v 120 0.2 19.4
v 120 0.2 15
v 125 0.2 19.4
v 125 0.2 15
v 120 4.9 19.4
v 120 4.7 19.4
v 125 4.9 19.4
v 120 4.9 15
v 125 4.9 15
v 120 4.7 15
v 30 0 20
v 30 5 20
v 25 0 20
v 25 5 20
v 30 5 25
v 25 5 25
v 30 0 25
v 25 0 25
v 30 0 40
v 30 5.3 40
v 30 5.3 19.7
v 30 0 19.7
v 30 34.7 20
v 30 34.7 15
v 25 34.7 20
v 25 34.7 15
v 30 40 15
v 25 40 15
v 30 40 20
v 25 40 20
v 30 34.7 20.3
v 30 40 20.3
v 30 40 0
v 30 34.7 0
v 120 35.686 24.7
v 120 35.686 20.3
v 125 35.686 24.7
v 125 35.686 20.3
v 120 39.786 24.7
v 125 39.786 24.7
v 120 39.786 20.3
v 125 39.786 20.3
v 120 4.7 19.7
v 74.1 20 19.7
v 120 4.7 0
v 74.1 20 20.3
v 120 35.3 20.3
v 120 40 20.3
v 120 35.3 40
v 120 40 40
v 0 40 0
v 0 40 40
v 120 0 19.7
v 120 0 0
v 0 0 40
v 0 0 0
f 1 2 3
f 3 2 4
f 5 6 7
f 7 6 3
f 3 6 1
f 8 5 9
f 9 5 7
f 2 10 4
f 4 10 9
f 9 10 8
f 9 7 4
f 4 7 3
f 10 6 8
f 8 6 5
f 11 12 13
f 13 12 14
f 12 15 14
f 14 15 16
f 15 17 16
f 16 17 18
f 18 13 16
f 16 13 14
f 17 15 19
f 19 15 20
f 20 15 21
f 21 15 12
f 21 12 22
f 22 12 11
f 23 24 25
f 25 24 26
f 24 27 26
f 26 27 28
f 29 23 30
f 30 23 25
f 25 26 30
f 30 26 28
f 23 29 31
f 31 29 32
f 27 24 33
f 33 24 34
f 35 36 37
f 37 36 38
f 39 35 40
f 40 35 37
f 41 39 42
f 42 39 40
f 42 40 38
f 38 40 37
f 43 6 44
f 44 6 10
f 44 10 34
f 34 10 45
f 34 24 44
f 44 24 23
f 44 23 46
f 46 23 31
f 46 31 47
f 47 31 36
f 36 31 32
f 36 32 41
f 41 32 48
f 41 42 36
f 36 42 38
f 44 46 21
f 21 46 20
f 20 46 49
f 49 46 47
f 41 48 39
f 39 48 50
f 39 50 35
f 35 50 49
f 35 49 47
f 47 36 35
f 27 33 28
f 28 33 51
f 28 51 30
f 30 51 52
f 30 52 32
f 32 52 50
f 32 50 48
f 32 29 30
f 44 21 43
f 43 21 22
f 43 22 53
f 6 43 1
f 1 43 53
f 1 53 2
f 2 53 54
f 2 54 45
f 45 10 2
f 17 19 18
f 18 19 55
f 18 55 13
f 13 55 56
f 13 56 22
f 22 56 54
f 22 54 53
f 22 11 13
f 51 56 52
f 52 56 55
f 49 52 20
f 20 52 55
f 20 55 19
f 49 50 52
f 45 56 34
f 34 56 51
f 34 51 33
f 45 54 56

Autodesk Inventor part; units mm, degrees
ref_plane "YZ Plane" through (0, 0, 0) normal (1, 0, 0) x (0, 1, 0)
ref_plane "XZ Plane" through (0, 0, 0) normal (0, 1, 0) x (-1, 0, 0)
ref_plane "XY Plane" through (0, 0, 0) normal (0, 0, 1) x (1, 0, 0)
sketch "Boceto1" plane through (0, 0, 0) normal (0, 0, 1) x (1, 0, 0)
  line L0 (0, 0) -> (120, 0)
  line L1 (0, 0) -> (0, 40)
  line L2 (0, 40) -> (120, 40)
  line L3 (120, 40) -> (120, 0)
  dimension "d0" = 120
  dimension "d1" = 40
extrude "Extrusión1" add sketch "Boceto1" along normal blind 40
sketch "Boceto2" plane through (0, 0, 40) normal (0, 0, 1) x (1, 0, 0)
  line L0 (0, 0) -> (120, 0) construction
  line L1 (0, 0) -> (30, 0) construction
  line L2 (30, 0) -> (120, 0) construction
  line L3 (120, 0) -> (120, 35.3) construction
  line L4 (120, 0) -> (120, 40) construction
  line L5 (30, 0) -> (120, 0)
  line L6 (120, 35.3) -> (120, 0)
  line L7 (30, 0) -> (30, 5.3)
  line L8 (30, 5.3) -> (120, 35.3)
  line L9 (30, 0) -> (30, 0.3)
  line L10 (30, 0.3) -> (120, 0.3)
  line L11 (30, 0.3) -> (120, 0.3) construction
  dimension "d4" = 30
  dimension "d5" = 35.3
  dimension "d6" = 5.3
  dimension "d46" = 0.3
  dimension "d47" = 90
  dimension "d48" = 0
extrude "Extrusión2" cut sketch "Boceto2" against normal blind 20.3
sketch "Boceto3" plane through (0, 0, 0) normal (0, 0, -1) x (-1, 0, 0)
  line L0 (0, 0) -> (-120, 0) construction
  line L1 (0, 40) -> (0, 0) construction
  line L2 (0, 0) -> (0, 40) construction
  line L3 (0, 0) -> (40, 0) construction
  line L4 (0, 40) -> (-30, 40) construction
  line L5 (-120, 40) -> (0, 40) construction
  line L6 (-30, 40) -> (-30, 34.7)
  line L7 (0, 0) -> (-30, 0) construction
  line L8 (-120, 0) -> (-120, 40) projected
  line L9 (-30, 0) -> (-120, 0)
  line L10 (-120, 0) -> (-120, 4.7)
  line L11 (-120, 0) -> (-115.3, 0) construction
  line L12 (-120, 4.7) -> (-30, 34.7)
  line L13 (-120, 35.3) -> (-120, 40) projected
  line L14 (-120, 4.7) -> (-120, 40)
  line L15 (-120, 40) -> (-30, 40)
  dimension "d9" = 40
  dimension "d10" = 90
  dimension "d11" = 30
  dimension "d12" = 5.3
  dimension "d13" = 30
  dimension "d14" = 4.7
  dimension "d15" = 90
extrude "Extrusión3" cut sketch "Boceto3" against normal blind 20.3
sketch "Boceto4" plane through (120, 35.3, 40) normal (1, 0, 0) x (0, 0, -1)
  line L0 (0, 4.7) -> (0, -35.3) projected
  line L1 (0, 0.386) -> (15.3, 0.386)
  line L2 (0, 0.386) -> (15.3, 0.386) construction
  line L3 (15.3, 0.386) -> (19.7, 0.386)
  line L4 (19.7, 0.386) -> (19.7, 4.486)
  line L5 (19.7, 4.486) -> (15.3, 4.486)
  line L6 (15.3, 4.486) -> (15.3, 0.386)
  line L7 (19.7, 4.7) -> (0, 4.7) projected
  point P0 (40, -35.3)
  dimension "d18" = 15.3
  dimension "d20" = 4.4
  dimension "d21" = 4.1
  dimension "d49" = 0.214
extrude "Extrusión4" add sketch "Boceto4" along normal blind 5
sketch "Boceto6" plane through (30, 34.7, 0) normal (1, 0, 0) x (0, 0, -1)
  line L0 (0, 0) -> (-20.3, 0) projected
  line L1 (0, 0) -> (-15, 0)
  line L2 (-15, 0) -> (-20, 0)
  line L3 (-20, 0) -> (-20, 5.3)
  line L4 (-20, 5.3) -> (-15, 5.3)
  line L5 (-15, 5.3) -> (-15, 0)
  point P0 (0, -34.7)
  dimension "d28" = 15
  dimension "d29" = 5
  dimension "d30" = 5.3
extrude "Extrusión6" cut sketch "Boceto6" against normal blind 5
sketch "Boceto7" plane through (30, 0, 40) normal (1, 0, 0) x (0, 0, -1)
  line L0 (20.3, 0) -> (0, 0) projected
  line L1 (0, 0) -> (15, 0)
  line L2 (15, 0) -> (20, 0)
  line L3 (20, 0) -> (20, 5)
  line L4 (20, 5) -> (15, 5)
  line L5 (15, 5) -> (15, 0)
  point P0 (40, 0)
  dimension "d33" = 15
  dimension "d34" = 5
  dimension "d35" = 5
extrude "Extrusión7" cut sketch "Boceto7" against normal blind 5
sketch "Boceto8" plane through (120, 0, 19.7) normal (1, 0, 0) x (0, 0, -1)
  line L0 (0, 4.7) -> (0, 0) projected
  line L1 (0, 0) -> (0.3, 0)
  line L2 (0, 0) -> (0.3, 0) construction
  line L3 (0.3, 0) -> (0.3, 0.2)
  line L4 (19.7, 0) -> (-20.3, 0) projected
  line L5 (0.3, 0) -> (0.5, 0) construction
  line L6 (0.3, 0.2) -> (4.7, 0.2)
  line L7 (4.7, 0.2) -> (4.7, 4.9)
  line L8 (4.7, 4.9) -> (0.3, 4.9)
  line L9 (0.3, 4.9) -> (0.3, 0.2)
  dimension "d38" = 0.3
  dimension "d39" = 0
  dimension "d40" = 0.2
  dimension "d41" = 90
  dimension "d42" = 4.4
  dimension "d43" = 4.7
extrude "Extrusión8" add sketch "Boceto8" along normal blind 5
equation "\"d40\" = Ajuste_02"
equation "\"Ajuste_01\" = 0.1"
equation "\"Ajuste_02\" = 0.2"
equation "\"Ajuste_04\" = 0.4"
equation "\"Ajuste_05\" = 0.5"
properties part number "Hembra_parametrizada"
